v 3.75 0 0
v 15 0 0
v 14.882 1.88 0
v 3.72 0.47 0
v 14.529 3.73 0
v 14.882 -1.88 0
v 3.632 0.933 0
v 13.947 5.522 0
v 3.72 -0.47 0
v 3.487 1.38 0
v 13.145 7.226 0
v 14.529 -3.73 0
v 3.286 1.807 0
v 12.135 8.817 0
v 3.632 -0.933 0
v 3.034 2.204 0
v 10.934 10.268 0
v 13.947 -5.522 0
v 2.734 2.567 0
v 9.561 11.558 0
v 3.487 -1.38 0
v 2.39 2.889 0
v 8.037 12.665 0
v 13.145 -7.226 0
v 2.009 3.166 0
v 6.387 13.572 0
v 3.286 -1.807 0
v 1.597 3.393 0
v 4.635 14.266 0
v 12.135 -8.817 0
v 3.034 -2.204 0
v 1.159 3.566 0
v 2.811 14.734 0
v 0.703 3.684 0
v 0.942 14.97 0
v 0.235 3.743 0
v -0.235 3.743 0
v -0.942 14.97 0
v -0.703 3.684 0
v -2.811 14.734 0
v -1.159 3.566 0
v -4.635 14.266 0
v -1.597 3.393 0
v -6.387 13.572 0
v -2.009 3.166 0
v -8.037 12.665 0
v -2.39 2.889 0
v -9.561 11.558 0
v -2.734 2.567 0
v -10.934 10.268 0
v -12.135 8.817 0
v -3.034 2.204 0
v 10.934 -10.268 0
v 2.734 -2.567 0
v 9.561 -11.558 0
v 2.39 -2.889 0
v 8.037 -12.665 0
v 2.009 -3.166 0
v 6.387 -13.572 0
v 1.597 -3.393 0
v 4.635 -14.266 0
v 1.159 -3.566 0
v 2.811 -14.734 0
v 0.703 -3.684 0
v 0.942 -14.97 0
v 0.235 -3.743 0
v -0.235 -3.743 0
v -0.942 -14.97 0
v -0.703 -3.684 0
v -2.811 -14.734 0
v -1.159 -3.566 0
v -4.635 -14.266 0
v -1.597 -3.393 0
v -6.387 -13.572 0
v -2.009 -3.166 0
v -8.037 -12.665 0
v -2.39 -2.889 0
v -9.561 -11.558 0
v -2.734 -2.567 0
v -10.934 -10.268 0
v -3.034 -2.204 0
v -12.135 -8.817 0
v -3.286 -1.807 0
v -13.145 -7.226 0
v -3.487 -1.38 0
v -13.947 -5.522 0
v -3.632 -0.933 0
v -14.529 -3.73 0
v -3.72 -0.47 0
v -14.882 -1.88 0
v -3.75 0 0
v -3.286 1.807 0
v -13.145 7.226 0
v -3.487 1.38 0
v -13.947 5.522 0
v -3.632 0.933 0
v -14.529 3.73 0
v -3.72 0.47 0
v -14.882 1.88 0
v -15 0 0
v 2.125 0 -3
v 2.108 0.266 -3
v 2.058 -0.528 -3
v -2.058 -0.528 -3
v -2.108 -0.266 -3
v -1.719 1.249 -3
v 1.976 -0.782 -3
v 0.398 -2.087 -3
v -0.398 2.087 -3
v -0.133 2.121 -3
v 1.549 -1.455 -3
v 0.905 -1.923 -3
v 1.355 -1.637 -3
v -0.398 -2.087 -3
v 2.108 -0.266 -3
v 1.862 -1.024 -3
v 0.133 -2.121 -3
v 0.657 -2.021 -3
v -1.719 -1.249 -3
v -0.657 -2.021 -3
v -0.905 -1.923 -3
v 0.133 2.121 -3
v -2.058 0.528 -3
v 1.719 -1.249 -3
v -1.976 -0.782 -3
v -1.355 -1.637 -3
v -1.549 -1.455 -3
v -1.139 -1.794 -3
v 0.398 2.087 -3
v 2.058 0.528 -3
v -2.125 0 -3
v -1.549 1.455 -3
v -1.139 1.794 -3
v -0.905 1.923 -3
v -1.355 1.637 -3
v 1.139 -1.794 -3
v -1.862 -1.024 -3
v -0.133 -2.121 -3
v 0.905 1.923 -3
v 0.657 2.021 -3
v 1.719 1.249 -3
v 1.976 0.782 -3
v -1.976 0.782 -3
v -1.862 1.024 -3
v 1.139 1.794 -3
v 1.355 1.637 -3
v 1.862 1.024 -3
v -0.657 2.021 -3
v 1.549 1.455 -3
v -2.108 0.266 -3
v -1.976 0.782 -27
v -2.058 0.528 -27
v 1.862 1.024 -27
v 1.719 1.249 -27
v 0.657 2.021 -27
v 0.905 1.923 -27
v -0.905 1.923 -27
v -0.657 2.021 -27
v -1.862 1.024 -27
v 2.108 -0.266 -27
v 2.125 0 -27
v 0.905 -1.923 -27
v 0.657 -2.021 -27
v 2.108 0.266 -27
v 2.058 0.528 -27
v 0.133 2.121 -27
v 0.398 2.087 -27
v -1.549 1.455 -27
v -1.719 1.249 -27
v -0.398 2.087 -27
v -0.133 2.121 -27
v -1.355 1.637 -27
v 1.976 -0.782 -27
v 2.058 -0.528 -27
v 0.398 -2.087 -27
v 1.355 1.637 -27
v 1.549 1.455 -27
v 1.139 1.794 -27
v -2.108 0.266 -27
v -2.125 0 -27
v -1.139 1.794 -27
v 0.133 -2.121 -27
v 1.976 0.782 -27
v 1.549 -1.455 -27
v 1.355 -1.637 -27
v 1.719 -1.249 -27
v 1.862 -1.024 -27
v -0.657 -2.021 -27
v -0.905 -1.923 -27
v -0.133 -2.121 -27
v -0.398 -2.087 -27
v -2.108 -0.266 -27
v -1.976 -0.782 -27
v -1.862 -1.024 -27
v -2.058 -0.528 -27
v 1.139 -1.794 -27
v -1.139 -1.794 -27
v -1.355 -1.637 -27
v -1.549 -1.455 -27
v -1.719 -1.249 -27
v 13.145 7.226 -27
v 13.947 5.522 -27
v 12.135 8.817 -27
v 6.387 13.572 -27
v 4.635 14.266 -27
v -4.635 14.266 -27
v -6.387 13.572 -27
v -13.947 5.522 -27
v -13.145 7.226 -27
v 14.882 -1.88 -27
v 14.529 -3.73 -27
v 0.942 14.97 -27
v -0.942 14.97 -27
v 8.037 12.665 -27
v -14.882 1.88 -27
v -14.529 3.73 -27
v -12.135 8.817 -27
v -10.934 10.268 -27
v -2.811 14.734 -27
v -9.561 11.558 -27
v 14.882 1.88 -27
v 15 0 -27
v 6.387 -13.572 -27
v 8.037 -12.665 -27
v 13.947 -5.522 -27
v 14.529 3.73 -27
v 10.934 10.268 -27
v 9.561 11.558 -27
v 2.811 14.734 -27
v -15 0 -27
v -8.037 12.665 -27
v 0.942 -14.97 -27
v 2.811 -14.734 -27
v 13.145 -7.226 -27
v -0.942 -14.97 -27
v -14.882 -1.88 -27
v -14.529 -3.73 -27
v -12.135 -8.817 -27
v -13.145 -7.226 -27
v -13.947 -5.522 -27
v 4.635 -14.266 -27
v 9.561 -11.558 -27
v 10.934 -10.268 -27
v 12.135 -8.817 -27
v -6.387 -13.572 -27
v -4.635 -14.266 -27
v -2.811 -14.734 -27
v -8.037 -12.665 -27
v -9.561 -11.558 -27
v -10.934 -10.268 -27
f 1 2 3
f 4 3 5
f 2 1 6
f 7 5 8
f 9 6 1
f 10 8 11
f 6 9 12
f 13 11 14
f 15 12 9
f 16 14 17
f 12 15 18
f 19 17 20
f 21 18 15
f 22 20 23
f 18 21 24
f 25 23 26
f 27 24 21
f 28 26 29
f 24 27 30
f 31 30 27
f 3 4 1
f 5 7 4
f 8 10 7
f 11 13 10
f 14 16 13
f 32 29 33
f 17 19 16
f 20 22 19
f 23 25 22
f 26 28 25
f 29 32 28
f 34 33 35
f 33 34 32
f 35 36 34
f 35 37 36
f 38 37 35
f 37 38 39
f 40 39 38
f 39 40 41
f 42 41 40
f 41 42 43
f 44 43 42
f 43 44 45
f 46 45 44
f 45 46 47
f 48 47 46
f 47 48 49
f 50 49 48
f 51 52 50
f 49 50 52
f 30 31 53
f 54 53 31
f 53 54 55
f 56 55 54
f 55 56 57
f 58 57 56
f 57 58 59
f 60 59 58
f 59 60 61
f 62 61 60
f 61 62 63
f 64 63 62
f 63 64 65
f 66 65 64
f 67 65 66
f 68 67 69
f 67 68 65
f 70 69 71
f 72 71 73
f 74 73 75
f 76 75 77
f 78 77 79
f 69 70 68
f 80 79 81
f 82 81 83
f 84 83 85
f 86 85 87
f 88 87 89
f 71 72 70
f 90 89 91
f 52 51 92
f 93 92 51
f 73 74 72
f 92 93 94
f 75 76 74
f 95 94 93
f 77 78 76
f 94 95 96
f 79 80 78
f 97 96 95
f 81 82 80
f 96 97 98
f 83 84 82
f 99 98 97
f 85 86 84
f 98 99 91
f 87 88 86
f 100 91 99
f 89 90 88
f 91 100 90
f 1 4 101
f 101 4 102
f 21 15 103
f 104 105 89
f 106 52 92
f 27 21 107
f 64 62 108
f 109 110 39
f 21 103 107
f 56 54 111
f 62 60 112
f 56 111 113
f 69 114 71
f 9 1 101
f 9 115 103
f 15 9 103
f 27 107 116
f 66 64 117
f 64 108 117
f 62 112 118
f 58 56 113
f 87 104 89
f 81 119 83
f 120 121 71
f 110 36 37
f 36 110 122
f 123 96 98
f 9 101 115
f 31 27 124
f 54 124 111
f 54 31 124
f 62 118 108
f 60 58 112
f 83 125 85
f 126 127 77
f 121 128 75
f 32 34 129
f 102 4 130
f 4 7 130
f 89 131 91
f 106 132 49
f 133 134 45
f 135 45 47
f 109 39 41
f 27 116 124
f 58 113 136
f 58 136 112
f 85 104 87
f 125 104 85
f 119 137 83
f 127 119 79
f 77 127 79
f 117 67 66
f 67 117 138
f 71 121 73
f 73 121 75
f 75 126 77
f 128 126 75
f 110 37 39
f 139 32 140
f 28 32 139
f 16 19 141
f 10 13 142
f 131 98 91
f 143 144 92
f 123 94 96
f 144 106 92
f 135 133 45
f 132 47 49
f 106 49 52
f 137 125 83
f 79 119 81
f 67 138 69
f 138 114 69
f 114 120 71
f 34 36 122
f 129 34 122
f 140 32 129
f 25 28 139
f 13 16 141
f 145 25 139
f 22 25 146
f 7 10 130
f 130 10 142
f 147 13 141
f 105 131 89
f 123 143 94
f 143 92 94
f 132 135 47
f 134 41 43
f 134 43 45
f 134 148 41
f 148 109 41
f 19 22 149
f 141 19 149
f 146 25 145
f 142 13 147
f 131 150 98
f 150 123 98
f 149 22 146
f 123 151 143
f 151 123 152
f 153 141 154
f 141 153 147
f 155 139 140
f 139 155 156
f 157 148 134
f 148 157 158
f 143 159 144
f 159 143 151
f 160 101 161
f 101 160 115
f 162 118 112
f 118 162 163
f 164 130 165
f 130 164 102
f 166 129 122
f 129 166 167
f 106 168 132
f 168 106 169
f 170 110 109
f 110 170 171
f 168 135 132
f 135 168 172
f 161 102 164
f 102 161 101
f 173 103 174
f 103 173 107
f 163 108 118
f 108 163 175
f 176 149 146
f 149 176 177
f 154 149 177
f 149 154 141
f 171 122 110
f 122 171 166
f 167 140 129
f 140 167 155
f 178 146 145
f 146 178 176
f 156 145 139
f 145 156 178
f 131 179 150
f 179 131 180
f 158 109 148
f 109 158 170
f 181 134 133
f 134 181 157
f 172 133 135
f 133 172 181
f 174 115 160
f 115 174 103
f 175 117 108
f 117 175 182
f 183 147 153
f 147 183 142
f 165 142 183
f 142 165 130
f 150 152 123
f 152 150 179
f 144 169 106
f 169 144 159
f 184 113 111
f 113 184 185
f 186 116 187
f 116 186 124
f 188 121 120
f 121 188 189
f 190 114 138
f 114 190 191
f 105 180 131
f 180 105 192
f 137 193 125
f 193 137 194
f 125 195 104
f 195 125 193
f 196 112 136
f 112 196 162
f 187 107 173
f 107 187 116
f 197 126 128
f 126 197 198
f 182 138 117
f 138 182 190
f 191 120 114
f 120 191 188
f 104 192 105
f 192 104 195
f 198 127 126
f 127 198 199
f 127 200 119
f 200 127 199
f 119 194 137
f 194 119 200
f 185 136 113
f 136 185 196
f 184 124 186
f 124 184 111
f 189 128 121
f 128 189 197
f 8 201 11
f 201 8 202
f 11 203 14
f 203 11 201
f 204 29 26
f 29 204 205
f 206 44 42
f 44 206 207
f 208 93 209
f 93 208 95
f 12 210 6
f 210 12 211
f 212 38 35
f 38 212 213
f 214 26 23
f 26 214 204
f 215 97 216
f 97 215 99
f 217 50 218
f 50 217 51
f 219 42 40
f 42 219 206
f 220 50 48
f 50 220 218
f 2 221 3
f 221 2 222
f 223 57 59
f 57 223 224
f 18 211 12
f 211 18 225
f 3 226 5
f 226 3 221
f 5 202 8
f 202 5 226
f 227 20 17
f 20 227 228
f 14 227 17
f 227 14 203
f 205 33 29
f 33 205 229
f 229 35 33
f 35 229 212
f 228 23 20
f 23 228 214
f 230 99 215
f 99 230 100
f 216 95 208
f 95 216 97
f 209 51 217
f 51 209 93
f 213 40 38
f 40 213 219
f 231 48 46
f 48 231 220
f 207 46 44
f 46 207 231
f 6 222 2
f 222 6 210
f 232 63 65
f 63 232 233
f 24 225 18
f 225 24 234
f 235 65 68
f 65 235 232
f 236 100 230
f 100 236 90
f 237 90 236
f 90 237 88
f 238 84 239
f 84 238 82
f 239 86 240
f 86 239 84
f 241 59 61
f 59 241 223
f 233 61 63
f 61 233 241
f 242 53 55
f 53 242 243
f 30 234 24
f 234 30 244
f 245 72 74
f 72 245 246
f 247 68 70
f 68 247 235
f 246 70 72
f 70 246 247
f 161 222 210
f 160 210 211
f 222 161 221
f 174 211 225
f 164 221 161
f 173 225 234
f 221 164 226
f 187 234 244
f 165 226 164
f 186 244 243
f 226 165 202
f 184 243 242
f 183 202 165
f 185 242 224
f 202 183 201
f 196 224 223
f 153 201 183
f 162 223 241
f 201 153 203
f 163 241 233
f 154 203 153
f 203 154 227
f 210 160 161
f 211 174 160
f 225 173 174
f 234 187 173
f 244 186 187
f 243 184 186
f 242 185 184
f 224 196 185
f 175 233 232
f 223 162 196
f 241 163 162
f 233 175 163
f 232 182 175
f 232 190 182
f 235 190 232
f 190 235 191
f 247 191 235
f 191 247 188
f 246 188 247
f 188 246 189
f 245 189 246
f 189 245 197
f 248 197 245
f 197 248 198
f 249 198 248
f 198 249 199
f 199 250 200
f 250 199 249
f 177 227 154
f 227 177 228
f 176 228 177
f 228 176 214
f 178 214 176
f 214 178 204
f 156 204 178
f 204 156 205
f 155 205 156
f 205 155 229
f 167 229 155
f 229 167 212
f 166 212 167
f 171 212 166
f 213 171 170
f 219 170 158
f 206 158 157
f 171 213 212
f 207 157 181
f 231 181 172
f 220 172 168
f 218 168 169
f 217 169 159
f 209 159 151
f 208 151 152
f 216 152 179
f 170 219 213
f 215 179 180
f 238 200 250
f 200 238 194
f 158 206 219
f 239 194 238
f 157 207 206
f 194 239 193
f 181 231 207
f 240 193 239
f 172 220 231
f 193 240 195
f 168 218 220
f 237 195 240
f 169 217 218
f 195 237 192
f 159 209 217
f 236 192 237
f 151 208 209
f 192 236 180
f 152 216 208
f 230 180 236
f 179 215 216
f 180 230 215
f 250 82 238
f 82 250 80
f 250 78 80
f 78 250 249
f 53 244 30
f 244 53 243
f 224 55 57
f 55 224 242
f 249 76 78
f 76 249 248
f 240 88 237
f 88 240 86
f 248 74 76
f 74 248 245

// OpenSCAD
$fn = 50;

difference() {
	union() {
		translate(v = [0, 0, -27.0]) {
			cylinder(h = 27, r = 15.0);
		}
	}
	union() {
		translate(v = [0, 0, 0]) {
			rotate(a = [0, 0, 0]) {
				difference() {
					union() {
						translate(v = [0, 0, -30.0]) {
							cylinder(h = 30, r = 2.0);
						}
						translate(v = [0, 0, -3]) {
							cylinder(h = 3, r1 = 2.125, r2 = 3.75);
						}
						translate(v = [0, 0, -30.0]) {
							cylinder(h = 30, r = 2.125);
						}
						translate(v = [0, 0, -30.0]) {
							cylinder(h = 30, r = 2.0);
						}
					}
					union();
				}
			}
		}
	}
}
